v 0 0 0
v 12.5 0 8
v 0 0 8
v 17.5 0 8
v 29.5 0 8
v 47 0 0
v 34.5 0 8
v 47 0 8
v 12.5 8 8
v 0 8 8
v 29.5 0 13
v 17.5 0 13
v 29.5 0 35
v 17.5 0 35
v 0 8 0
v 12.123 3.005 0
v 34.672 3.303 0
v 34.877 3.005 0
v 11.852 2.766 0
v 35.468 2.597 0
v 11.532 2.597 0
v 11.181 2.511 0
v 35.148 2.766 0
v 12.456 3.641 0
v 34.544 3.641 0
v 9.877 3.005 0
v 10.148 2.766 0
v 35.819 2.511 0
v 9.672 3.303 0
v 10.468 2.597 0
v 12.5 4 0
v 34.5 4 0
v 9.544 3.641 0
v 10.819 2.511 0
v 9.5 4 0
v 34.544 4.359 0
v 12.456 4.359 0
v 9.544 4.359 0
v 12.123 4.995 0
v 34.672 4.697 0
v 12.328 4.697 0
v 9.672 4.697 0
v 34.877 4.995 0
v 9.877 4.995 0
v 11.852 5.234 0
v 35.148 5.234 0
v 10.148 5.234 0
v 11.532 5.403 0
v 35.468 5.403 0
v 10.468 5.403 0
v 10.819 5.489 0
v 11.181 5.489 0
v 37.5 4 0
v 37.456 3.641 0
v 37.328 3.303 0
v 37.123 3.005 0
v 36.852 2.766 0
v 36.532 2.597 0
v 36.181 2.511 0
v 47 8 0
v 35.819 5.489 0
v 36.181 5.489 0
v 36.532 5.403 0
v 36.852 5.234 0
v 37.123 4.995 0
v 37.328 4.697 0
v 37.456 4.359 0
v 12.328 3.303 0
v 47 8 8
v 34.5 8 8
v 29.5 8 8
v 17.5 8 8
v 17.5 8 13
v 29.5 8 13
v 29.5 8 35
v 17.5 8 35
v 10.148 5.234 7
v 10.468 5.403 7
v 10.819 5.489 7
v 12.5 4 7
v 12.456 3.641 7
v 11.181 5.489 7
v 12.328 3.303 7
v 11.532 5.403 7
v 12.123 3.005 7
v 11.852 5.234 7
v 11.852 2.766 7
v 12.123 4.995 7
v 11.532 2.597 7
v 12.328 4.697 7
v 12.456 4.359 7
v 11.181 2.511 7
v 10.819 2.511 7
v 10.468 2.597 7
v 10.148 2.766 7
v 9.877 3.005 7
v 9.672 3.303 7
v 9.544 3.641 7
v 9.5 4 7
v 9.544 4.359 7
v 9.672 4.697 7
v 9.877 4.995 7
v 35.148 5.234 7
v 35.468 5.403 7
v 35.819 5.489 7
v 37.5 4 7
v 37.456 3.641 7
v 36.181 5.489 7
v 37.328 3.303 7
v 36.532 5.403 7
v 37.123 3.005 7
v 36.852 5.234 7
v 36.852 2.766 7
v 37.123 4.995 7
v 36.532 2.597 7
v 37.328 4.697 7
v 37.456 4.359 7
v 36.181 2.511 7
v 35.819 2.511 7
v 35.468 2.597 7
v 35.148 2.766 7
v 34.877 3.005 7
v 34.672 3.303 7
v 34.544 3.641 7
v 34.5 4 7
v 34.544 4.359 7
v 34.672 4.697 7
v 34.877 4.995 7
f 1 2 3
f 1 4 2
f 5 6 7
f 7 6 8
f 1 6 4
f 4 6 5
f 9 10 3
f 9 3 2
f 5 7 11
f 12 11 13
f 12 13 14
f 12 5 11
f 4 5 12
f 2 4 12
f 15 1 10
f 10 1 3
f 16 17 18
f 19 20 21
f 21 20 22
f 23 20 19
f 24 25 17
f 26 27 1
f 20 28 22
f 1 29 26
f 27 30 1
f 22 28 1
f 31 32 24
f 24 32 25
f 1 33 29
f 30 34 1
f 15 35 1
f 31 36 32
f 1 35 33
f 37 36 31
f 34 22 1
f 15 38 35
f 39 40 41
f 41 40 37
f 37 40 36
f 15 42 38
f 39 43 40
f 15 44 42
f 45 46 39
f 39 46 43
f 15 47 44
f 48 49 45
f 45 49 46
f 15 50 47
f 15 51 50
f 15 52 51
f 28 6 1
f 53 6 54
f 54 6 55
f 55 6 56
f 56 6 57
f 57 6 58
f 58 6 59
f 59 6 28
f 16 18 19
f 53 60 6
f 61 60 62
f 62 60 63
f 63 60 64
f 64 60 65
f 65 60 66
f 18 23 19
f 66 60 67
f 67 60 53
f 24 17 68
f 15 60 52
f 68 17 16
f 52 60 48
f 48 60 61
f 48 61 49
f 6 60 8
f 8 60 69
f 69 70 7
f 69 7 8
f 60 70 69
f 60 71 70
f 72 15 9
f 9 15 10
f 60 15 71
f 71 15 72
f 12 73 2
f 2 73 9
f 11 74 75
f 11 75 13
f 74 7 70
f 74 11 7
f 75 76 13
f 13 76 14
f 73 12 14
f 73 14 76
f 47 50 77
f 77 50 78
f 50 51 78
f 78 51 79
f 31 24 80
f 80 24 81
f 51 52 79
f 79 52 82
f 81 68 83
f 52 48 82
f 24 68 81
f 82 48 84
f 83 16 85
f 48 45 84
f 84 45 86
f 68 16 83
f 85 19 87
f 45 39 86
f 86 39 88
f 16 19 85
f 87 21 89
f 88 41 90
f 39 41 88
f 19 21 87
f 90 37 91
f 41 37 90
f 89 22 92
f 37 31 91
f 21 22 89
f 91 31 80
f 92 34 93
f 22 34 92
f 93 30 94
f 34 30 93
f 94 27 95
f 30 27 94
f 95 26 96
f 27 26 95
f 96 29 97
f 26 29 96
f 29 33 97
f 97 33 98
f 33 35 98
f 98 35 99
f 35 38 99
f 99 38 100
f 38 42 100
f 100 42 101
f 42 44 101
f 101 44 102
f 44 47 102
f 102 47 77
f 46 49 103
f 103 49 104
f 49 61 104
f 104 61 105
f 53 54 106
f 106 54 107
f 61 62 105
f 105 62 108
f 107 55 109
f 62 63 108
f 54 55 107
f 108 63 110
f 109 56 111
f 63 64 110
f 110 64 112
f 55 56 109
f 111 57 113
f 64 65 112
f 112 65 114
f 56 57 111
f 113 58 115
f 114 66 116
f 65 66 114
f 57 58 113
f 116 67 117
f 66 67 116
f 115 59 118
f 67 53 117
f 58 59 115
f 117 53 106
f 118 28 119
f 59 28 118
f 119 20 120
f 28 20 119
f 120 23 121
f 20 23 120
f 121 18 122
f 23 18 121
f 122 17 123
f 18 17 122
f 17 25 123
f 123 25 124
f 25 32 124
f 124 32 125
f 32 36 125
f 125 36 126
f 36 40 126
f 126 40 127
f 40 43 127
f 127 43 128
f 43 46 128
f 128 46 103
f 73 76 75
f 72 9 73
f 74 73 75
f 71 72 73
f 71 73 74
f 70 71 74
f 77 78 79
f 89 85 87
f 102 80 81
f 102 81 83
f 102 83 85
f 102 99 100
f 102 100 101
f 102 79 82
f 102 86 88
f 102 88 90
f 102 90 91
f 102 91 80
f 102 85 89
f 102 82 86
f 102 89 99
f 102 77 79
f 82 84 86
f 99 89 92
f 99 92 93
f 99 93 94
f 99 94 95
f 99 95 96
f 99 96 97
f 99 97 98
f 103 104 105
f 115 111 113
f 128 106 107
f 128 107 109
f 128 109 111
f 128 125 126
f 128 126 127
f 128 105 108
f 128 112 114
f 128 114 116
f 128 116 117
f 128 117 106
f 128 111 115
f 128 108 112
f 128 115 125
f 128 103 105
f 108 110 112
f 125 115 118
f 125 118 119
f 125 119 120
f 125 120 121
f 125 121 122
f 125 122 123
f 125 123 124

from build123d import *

# Parameters (mm, degrees)
SKETCH_W     = 47
SKETCH_H     = 8
PAD_DEPTH    = 8
SKETCH001_W  = 12
SKETCH001_H  = 8
PAD001_DEPTH = 27
SKETCH002_R  = 1.5
POCKET_DEPTH = 7
CHAMFER_SIZE = 5


with BuildPart() as part:
    # Sketch → Pad (new body)
    with BuildSketch(Plane.XY):
        with Locations((23.5, 4)):
            Rectangle(SKETCH_W, SKETCH_H)
    extrude(amount=PAD_DEPTH)

    # Sketch001 (on Face8 of Pad) → Pad001 (join)
    with BuildSketch(Plane.XY.offset(8)):
        with Locations((23.5, 4)):
            Rectangle(SKETCH001_W, SKETCH001_H)
    extrude(amount=PAD001_DEPTH)

    # Sketch002 (on Face4 of Pad001) → Pocket (cut)
    with BuildSketch(Plane(origin=(0, 0, 0), x_dir=(1, 0, 0), z_dir=(0, 0, -1))):
        with Locations((36, -4)):
            Circle(SKETCH002_R)
        with Locations((11, -4)):
            Circle(SKETCH002_R)
    extrude(amount=-POCKET_DEPTH, mode=Mode.SUBTRACT)

    # Chamfer
    chamfer_edges = [part.edges().sort_by_distance(p)[0] for p in [
        (17.5, 4, 8),
        (29.5, 4, 8),
    ]]
    chamfer(chamfer_edges, length=CHAMFER_SIZE)


solid = part.part
